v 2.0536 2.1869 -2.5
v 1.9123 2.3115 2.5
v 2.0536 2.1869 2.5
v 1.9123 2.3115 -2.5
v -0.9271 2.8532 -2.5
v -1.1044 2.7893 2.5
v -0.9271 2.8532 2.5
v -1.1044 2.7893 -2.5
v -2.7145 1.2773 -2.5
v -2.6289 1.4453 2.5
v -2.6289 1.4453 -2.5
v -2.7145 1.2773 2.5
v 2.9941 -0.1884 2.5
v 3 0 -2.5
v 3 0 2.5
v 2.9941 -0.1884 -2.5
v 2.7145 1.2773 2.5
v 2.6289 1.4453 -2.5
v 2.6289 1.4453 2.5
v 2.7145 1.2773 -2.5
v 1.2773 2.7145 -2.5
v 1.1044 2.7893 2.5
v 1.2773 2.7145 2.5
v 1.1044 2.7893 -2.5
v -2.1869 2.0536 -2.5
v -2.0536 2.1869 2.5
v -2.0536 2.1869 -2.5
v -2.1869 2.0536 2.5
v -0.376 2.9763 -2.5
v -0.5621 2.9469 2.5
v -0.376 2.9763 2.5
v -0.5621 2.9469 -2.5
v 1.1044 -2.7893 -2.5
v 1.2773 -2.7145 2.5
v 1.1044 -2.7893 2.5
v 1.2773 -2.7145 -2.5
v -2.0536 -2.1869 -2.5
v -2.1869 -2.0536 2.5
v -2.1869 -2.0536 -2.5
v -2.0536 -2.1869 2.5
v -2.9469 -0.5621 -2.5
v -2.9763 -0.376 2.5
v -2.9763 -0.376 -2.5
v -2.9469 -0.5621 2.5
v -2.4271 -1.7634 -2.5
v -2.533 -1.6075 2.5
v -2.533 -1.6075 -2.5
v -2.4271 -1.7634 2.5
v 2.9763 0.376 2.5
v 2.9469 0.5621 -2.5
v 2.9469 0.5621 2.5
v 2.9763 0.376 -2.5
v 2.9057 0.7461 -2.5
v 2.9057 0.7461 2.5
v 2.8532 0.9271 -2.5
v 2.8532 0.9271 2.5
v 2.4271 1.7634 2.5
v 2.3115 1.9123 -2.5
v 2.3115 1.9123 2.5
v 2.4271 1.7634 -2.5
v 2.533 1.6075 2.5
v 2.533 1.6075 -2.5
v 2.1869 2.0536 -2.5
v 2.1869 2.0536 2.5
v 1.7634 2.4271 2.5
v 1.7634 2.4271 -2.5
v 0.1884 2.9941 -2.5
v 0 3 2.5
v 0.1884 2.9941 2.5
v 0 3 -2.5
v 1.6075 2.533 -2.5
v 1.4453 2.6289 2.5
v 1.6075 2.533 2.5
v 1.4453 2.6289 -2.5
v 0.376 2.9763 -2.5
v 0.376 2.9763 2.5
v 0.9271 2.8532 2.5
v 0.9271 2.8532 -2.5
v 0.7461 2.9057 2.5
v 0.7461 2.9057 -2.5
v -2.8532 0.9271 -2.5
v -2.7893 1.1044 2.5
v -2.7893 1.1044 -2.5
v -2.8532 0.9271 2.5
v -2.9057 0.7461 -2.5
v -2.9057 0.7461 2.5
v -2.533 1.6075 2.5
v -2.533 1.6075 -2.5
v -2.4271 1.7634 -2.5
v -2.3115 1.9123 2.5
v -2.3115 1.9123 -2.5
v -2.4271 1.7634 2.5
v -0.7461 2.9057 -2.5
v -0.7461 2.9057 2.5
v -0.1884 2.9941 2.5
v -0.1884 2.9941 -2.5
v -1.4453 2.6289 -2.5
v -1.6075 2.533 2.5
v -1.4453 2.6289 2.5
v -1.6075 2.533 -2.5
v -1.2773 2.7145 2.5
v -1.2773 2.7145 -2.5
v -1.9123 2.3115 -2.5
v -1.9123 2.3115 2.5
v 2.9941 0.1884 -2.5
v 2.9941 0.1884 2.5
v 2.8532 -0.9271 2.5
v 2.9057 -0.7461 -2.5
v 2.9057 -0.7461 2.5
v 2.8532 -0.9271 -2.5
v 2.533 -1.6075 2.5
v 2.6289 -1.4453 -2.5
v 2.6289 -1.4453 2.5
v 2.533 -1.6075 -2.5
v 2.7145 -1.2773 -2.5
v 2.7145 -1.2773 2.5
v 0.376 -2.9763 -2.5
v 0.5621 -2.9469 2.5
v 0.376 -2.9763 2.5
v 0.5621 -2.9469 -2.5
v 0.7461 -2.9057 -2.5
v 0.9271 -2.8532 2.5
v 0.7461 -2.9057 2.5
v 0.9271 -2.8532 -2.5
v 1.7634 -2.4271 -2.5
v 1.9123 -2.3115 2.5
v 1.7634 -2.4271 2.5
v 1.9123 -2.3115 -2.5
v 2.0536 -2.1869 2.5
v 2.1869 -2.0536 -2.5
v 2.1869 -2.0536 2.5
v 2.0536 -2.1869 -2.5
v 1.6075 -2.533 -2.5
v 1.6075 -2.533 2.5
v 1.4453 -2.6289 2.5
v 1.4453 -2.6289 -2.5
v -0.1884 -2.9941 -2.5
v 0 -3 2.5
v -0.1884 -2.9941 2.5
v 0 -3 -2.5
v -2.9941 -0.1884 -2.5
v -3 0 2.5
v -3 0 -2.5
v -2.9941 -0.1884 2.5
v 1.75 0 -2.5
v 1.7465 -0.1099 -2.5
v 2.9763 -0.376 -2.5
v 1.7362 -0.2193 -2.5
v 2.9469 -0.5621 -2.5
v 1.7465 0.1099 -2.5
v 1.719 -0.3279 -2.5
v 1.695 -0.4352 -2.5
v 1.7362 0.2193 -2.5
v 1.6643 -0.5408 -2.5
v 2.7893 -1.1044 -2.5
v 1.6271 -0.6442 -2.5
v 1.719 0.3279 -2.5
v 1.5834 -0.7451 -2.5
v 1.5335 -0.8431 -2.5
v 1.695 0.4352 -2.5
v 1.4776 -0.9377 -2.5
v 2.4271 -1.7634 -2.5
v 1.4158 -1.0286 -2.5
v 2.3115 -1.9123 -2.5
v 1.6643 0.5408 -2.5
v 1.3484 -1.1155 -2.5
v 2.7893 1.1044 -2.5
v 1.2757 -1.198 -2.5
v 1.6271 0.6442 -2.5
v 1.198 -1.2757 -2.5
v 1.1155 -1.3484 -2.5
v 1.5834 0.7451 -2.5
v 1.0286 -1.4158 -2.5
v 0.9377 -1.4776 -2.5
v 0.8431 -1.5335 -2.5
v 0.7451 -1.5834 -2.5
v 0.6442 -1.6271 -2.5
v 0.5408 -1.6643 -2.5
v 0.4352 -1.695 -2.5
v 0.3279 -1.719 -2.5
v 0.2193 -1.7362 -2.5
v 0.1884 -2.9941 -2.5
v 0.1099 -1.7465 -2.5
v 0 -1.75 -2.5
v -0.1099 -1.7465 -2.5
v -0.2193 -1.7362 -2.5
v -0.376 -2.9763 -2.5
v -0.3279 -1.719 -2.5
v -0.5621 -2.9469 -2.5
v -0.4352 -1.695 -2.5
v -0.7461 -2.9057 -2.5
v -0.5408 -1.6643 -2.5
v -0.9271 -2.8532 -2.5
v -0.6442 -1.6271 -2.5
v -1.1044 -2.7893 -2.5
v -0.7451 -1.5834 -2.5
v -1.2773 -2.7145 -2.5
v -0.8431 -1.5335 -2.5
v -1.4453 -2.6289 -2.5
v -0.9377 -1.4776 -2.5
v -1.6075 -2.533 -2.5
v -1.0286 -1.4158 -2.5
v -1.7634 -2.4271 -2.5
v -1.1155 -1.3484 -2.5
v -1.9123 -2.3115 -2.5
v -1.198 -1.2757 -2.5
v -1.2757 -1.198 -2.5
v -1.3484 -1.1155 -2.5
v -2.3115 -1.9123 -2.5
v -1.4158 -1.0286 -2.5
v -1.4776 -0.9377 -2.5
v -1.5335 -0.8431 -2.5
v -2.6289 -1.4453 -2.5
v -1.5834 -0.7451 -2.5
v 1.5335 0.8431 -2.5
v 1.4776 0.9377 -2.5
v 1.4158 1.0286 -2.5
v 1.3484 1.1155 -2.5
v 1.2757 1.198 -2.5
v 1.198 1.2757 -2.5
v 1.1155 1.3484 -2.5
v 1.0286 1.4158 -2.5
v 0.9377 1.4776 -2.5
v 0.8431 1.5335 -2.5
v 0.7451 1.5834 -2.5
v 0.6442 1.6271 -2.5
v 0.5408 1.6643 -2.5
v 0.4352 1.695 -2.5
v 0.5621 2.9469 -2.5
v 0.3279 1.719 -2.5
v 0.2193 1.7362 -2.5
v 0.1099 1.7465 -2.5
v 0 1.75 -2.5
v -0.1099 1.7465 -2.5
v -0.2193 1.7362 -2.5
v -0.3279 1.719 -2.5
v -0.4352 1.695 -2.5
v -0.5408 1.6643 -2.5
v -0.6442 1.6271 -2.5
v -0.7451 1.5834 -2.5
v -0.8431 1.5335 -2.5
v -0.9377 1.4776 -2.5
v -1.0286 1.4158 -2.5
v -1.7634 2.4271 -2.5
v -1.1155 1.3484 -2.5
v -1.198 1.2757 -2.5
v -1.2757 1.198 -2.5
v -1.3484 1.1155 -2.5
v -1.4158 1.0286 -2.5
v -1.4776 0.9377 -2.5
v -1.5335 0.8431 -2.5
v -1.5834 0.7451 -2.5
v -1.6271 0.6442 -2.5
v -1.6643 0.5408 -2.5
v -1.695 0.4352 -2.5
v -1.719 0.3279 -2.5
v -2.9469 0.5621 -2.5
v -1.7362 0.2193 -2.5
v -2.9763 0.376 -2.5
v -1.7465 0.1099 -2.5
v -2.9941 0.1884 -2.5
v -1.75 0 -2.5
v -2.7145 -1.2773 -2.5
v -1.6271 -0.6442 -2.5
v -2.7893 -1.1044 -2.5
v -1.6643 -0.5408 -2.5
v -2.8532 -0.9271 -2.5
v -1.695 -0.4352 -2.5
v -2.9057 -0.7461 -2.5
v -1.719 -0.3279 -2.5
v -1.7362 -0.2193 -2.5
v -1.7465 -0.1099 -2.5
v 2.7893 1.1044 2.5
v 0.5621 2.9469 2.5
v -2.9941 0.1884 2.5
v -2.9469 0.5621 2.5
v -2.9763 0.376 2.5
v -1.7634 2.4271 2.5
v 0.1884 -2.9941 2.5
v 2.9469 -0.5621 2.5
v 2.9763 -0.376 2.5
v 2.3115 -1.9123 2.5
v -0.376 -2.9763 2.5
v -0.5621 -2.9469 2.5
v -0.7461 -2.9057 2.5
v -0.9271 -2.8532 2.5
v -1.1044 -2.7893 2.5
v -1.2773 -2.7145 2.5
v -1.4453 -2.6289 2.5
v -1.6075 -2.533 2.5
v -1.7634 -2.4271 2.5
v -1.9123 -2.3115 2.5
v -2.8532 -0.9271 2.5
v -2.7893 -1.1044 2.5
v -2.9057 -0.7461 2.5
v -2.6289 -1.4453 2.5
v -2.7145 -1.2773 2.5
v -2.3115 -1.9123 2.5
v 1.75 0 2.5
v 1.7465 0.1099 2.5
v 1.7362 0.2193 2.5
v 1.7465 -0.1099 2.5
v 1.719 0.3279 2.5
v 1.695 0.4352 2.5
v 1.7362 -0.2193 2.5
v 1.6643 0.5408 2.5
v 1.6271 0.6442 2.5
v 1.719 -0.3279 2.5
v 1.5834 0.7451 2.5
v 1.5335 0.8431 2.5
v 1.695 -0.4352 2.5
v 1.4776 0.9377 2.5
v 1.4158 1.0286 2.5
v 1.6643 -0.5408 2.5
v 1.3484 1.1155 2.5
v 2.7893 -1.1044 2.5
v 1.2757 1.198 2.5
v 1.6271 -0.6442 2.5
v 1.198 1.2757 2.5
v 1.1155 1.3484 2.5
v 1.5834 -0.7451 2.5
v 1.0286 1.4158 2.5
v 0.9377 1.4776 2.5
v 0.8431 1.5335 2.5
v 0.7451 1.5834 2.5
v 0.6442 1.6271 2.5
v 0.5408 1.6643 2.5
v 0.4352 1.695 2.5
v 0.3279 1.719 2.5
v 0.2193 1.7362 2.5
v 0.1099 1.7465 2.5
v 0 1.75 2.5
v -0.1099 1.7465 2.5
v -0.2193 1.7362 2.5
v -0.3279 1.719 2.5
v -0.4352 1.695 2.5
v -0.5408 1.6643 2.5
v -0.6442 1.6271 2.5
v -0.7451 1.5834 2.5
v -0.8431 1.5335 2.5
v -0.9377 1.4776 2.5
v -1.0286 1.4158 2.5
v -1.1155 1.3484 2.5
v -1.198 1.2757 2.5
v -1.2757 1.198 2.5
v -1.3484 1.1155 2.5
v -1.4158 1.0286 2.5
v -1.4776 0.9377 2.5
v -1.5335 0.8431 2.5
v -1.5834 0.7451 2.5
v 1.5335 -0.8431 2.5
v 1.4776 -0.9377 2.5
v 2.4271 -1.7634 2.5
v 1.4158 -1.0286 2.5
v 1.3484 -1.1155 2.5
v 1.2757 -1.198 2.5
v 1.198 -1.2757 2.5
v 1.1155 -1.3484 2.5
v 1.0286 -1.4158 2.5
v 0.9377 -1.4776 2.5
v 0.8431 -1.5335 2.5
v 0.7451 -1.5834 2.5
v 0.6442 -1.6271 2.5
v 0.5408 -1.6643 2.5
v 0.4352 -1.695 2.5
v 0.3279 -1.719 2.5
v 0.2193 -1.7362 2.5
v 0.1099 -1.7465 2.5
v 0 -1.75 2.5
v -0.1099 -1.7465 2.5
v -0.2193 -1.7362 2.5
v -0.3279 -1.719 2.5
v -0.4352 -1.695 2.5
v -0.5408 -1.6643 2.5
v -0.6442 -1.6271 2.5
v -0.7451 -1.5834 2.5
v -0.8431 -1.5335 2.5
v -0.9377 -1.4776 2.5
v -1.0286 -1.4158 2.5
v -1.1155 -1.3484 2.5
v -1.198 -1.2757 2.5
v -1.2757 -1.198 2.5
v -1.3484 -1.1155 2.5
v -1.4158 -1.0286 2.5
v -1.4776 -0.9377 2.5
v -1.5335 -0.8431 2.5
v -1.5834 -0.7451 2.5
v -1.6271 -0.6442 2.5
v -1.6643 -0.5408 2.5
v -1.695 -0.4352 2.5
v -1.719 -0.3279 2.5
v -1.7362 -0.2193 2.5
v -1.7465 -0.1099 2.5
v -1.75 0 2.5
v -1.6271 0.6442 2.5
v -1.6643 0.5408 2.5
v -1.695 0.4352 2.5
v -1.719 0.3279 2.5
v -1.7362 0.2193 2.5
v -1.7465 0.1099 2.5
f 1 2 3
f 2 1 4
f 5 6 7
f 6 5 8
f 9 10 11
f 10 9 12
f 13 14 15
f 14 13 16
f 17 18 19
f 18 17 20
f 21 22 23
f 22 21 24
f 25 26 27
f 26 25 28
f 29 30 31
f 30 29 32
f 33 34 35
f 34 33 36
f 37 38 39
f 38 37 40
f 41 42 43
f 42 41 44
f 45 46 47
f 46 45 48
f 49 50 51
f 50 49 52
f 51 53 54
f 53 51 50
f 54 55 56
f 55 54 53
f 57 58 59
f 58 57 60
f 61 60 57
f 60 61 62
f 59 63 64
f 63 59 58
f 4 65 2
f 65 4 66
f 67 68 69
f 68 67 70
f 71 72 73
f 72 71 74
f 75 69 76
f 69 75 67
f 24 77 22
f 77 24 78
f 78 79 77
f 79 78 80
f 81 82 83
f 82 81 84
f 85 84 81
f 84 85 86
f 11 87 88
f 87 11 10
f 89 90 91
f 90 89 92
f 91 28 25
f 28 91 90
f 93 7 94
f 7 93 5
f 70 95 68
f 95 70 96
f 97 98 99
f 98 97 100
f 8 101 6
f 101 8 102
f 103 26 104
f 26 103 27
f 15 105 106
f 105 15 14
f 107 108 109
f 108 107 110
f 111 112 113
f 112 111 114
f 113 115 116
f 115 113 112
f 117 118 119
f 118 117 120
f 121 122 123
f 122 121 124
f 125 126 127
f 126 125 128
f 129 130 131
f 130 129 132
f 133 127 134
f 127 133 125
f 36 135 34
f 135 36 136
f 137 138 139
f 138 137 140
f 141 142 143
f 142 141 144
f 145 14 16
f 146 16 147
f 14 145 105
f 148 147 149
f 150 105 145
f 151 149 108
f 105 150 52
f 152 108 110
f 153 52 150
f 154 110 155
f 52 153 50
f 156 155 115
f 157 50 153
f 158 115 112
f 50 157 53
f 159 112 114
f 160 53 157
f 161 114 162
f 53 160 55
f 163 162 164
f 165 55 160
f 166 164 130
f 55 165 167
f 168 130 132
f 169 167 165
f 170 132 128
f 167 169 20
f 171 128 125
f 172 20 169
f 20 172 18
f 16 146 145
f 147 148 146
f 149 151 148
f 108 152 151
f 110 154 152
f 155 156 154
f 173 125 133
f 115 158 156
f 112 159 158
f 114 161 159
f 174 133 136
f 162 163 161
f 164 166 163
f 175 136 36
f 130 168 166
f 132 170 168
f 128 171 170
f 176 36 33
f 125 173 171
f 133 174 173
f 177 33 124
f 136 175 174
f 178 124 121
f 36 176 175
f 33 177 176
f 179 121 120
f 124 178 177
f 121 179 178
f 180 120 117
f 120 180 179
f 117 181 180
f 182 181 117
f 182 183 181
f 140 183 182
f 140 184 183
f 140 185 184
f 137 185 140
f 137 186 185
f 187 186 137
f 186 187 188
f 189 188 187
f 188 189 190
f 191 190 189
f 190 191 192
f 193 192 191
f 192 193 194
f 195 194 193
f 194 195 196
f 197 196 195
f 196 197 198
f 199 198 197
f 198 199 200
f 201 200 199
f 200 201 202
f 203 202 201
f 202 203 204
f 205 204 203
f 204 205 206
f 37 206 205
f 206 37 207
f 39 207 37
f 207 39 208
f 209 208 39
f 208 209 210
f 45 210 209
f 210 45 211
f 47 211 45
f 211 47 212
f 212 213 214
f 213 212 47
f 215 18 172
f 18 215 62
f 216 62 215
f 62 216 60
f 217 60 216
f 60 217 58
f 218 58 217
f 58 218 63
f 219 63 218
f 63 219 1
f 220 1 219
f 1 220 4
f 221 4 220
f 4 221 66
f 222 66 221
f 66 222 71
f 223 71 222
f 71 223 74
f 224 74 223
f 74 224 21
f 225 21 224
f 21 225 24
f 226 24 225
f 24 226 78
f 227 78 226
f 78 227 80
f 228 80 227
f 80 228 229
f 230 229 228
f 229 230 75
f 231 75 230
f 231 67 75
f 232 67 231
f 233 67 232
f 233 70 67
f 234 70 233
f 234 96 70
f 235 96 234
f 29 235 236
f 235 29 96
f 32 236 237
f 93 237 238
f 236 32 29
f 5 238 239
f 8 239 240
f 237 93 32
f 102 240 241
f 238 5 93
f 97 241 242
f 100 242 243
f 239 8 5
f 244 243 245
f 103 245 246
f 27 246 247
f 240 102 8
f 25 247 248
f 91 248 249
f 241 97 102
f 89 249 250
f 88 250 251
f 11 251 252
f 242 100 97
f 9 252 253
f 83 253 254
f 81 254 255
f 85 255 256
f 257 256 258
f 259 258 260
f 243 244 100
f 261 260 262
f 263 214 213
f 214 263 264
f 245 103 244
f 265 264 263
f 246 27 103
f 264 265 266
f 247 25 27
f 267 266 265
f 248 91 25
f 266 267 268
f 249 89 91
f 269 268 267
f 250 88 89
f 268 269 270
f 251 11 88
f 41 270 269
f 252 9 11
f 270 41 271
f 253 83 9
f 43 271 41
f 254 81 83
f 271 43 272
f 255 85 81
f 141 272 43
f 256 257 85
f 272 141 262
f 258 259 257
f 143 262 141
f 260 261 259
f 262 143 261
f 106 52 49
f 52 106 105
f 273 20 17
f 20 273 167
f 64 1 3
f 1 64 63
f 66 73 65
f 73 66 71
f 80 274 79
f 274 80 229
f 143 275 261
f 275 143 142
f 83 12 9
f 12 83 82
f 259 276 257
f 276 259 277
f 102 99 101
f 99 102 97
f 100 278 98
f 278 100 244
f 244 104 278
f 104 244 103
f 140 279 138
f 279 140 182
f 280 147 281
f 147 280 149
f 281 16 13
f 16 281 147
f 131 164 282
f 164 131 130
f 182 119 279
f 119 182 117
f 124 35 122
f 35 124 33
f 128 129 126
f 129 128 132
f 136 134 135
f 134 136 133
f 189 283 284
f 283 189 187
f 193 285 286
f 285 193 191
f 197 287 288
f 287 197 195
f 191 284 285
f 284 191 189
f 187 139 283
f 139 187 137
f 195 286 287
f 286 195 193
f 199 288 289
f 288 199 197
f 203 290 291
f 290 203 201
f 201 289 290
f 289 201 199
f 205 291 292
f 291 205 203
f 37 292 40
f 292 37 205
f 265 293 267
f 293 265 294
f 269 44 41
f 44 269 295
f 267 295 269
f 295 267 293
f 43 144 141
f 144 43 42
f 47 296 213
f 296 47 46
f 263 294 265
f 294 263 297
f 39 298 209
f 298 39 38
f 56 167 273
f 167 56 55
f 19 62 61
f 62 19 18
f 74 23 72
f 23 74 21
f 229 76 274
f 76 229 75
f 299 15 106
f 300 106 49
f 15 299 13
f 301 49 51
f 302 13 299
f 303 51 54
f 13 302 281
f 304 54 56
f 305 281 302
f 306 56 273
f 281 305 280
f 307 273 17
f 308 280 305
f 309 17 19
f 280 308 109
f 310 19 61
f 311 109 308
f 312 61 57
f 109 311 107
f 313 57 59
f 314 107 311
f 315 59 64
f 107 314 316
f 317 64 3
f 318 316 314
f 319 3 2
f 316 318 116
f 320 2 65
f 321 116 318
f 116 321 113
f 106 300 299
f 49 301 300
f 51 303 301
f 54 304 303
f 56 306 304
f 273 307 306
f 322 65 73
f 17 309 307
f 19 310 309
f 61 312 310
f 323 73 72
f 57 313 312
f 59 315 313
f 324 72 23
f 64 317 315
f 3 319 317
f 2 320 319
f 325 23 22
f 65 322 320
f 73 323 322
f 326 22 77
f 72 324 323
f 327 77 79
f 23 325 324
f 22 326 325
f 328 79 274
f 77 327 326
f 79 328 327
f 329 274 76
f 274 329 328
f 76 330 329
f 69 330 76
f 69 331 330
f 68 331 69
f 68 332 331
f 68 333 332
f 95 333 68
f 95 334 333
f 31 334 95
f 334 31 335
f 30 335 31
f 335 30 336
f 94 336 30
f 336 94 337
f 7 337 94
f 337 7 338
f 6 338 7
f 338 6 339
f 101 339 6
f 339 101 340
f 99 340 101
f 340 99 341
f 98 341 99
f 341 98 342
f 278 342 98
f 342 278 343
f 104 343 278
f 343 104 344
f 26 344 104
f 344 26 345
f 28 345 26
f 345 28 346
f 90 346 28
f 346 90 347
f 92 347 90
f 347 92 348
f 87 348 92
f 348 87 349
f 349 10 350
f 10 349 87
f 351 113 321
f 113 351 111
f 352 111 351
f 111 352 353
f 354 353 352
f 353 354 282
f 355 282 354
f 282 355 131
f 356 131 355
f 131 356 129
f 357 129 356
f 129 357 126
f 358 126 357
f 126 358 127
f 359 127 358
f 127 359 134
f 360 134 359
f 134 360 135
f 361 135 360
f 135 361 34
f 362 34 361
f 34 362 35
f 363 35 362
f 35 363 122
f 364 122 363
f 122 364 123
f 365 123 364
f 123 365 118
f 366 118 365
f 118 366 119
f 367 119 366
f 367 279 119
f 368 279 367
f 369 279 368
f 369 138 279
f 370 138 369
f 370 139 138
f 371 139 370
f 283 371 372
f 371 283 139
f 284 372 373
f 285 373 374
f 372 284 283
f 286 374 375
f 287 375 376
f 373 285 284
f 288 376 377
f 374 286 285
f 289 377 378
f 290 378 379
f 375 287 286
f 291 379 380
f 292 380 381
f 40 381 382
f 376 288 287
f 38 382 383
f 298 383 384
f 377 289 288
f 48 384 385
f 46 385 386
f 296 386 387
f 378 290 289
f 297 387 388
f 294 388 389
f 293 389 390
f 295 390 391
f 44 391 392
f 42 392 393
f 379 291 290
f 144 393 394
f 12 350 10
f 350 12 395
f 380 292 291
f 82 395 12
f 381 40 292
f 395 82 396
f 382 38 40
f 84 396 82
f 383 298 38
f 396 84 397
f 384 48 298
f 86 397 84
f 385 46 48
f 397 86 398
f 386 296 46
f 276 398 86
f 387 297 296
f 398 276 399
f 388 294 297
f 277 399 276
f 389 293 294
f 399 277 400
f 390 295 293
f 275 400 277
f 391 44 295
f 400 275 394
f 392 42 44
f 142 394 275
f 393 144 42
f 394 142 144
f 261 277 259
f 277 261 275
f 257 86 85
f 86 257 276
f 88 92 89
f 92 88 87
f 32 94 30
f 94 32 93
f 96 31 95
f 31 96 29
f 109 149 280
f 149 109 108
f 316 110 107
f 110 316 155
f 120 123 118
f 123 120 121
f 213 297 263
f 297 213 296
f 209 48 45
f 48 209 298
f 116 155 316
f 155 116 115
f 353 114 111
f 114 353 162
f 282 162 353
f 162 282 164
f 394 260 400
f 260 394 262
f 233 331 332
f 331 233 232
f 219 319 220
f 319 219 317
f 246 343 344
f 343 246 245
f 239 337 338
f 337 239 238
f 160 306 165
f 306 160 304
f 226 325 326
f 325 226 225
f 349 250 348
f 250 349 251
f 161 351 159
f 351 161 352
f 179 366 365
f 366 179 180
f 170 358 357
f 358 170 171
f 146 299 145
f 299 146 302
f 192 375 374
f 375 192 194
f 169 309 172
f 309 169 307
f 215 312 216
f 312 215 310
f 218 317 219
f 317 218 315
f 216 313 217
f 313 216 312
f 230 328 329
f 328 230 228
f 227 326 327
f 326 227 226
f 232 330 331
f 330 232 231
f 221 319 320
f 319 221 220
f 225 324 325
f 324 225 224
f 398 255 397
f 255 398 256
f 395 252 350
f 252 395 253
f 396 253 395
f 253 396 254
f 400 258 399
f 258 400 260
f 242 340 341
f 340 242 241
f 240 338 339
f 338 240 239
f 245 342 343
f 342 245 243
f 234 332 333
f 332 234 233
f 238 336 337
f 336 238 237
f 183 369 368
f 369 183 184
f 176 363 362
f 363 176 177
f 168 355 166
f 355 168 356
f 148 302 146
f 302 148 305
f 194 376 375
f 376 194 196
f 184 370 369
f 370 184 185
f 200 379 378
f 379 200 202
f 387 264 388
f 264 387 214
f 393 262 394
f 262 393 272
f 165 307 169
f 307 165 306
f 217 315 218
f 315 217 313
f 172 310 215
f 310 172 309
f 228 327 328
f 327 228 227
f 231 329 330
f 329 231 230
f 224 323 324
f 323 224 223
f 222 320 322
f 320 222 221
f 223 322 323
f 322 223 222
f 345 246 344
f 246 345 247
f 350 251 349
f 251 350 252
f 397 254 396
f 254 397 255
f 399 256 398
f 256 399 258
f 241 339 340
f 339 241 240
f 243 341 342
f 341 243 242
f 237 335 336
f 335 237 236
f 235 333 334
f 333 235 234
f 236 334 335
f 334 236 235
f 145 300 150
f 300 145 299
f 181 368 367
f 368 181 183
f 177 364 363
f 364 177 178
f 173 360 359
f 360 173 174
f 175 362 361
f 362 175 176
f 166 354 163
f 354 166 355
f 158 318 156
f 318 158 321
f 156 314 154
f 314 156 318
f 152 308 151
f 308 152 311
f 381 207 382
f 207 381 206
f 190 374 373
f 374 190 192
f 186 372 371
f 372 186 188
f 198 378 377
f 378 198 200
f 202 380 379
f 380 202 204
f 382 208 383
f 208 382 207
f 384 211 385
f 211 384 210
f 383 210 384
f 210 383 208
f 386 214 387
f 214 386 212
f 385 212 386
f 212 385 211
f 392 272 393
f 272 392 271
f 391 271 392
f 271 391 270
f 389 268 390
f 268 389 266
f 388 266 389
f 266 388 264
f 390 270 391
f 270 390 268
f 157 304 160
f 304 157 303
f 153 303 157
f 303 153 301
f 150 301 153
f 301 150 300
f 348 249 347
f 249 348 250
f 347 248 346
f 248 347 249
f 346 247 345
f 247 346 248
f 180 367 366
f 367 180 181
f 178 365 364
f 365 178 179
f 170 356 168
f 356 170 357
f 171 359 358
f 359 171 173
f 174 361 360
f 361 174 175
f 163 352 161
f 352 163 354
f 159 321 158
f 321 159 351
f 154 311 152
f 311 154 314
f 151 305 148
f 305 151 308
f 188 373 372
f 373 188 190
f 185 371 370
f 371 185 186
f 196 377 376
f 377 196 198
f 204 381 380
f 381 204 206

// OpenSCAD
/***************************************************************
sidru_remote.scad
Программа генерации 3д модели стойки для соединения печатных плат
Может быть использована для генерации 3д модели шайбы
***************************************************************/

$fn = 100;          //количество полигонов

height = 5;         //высота
ext_diameter = 6;   //внешний диаметр
int_diameter = 3.5; //внутренний диаметр

//вычитаем внутренний цилиндр из внешнего
difference()
{
    cylinder(h = height, d = ext_diameter, center = true);
    cylinder(h = height+1, d = int_diameter, center = true);
}
